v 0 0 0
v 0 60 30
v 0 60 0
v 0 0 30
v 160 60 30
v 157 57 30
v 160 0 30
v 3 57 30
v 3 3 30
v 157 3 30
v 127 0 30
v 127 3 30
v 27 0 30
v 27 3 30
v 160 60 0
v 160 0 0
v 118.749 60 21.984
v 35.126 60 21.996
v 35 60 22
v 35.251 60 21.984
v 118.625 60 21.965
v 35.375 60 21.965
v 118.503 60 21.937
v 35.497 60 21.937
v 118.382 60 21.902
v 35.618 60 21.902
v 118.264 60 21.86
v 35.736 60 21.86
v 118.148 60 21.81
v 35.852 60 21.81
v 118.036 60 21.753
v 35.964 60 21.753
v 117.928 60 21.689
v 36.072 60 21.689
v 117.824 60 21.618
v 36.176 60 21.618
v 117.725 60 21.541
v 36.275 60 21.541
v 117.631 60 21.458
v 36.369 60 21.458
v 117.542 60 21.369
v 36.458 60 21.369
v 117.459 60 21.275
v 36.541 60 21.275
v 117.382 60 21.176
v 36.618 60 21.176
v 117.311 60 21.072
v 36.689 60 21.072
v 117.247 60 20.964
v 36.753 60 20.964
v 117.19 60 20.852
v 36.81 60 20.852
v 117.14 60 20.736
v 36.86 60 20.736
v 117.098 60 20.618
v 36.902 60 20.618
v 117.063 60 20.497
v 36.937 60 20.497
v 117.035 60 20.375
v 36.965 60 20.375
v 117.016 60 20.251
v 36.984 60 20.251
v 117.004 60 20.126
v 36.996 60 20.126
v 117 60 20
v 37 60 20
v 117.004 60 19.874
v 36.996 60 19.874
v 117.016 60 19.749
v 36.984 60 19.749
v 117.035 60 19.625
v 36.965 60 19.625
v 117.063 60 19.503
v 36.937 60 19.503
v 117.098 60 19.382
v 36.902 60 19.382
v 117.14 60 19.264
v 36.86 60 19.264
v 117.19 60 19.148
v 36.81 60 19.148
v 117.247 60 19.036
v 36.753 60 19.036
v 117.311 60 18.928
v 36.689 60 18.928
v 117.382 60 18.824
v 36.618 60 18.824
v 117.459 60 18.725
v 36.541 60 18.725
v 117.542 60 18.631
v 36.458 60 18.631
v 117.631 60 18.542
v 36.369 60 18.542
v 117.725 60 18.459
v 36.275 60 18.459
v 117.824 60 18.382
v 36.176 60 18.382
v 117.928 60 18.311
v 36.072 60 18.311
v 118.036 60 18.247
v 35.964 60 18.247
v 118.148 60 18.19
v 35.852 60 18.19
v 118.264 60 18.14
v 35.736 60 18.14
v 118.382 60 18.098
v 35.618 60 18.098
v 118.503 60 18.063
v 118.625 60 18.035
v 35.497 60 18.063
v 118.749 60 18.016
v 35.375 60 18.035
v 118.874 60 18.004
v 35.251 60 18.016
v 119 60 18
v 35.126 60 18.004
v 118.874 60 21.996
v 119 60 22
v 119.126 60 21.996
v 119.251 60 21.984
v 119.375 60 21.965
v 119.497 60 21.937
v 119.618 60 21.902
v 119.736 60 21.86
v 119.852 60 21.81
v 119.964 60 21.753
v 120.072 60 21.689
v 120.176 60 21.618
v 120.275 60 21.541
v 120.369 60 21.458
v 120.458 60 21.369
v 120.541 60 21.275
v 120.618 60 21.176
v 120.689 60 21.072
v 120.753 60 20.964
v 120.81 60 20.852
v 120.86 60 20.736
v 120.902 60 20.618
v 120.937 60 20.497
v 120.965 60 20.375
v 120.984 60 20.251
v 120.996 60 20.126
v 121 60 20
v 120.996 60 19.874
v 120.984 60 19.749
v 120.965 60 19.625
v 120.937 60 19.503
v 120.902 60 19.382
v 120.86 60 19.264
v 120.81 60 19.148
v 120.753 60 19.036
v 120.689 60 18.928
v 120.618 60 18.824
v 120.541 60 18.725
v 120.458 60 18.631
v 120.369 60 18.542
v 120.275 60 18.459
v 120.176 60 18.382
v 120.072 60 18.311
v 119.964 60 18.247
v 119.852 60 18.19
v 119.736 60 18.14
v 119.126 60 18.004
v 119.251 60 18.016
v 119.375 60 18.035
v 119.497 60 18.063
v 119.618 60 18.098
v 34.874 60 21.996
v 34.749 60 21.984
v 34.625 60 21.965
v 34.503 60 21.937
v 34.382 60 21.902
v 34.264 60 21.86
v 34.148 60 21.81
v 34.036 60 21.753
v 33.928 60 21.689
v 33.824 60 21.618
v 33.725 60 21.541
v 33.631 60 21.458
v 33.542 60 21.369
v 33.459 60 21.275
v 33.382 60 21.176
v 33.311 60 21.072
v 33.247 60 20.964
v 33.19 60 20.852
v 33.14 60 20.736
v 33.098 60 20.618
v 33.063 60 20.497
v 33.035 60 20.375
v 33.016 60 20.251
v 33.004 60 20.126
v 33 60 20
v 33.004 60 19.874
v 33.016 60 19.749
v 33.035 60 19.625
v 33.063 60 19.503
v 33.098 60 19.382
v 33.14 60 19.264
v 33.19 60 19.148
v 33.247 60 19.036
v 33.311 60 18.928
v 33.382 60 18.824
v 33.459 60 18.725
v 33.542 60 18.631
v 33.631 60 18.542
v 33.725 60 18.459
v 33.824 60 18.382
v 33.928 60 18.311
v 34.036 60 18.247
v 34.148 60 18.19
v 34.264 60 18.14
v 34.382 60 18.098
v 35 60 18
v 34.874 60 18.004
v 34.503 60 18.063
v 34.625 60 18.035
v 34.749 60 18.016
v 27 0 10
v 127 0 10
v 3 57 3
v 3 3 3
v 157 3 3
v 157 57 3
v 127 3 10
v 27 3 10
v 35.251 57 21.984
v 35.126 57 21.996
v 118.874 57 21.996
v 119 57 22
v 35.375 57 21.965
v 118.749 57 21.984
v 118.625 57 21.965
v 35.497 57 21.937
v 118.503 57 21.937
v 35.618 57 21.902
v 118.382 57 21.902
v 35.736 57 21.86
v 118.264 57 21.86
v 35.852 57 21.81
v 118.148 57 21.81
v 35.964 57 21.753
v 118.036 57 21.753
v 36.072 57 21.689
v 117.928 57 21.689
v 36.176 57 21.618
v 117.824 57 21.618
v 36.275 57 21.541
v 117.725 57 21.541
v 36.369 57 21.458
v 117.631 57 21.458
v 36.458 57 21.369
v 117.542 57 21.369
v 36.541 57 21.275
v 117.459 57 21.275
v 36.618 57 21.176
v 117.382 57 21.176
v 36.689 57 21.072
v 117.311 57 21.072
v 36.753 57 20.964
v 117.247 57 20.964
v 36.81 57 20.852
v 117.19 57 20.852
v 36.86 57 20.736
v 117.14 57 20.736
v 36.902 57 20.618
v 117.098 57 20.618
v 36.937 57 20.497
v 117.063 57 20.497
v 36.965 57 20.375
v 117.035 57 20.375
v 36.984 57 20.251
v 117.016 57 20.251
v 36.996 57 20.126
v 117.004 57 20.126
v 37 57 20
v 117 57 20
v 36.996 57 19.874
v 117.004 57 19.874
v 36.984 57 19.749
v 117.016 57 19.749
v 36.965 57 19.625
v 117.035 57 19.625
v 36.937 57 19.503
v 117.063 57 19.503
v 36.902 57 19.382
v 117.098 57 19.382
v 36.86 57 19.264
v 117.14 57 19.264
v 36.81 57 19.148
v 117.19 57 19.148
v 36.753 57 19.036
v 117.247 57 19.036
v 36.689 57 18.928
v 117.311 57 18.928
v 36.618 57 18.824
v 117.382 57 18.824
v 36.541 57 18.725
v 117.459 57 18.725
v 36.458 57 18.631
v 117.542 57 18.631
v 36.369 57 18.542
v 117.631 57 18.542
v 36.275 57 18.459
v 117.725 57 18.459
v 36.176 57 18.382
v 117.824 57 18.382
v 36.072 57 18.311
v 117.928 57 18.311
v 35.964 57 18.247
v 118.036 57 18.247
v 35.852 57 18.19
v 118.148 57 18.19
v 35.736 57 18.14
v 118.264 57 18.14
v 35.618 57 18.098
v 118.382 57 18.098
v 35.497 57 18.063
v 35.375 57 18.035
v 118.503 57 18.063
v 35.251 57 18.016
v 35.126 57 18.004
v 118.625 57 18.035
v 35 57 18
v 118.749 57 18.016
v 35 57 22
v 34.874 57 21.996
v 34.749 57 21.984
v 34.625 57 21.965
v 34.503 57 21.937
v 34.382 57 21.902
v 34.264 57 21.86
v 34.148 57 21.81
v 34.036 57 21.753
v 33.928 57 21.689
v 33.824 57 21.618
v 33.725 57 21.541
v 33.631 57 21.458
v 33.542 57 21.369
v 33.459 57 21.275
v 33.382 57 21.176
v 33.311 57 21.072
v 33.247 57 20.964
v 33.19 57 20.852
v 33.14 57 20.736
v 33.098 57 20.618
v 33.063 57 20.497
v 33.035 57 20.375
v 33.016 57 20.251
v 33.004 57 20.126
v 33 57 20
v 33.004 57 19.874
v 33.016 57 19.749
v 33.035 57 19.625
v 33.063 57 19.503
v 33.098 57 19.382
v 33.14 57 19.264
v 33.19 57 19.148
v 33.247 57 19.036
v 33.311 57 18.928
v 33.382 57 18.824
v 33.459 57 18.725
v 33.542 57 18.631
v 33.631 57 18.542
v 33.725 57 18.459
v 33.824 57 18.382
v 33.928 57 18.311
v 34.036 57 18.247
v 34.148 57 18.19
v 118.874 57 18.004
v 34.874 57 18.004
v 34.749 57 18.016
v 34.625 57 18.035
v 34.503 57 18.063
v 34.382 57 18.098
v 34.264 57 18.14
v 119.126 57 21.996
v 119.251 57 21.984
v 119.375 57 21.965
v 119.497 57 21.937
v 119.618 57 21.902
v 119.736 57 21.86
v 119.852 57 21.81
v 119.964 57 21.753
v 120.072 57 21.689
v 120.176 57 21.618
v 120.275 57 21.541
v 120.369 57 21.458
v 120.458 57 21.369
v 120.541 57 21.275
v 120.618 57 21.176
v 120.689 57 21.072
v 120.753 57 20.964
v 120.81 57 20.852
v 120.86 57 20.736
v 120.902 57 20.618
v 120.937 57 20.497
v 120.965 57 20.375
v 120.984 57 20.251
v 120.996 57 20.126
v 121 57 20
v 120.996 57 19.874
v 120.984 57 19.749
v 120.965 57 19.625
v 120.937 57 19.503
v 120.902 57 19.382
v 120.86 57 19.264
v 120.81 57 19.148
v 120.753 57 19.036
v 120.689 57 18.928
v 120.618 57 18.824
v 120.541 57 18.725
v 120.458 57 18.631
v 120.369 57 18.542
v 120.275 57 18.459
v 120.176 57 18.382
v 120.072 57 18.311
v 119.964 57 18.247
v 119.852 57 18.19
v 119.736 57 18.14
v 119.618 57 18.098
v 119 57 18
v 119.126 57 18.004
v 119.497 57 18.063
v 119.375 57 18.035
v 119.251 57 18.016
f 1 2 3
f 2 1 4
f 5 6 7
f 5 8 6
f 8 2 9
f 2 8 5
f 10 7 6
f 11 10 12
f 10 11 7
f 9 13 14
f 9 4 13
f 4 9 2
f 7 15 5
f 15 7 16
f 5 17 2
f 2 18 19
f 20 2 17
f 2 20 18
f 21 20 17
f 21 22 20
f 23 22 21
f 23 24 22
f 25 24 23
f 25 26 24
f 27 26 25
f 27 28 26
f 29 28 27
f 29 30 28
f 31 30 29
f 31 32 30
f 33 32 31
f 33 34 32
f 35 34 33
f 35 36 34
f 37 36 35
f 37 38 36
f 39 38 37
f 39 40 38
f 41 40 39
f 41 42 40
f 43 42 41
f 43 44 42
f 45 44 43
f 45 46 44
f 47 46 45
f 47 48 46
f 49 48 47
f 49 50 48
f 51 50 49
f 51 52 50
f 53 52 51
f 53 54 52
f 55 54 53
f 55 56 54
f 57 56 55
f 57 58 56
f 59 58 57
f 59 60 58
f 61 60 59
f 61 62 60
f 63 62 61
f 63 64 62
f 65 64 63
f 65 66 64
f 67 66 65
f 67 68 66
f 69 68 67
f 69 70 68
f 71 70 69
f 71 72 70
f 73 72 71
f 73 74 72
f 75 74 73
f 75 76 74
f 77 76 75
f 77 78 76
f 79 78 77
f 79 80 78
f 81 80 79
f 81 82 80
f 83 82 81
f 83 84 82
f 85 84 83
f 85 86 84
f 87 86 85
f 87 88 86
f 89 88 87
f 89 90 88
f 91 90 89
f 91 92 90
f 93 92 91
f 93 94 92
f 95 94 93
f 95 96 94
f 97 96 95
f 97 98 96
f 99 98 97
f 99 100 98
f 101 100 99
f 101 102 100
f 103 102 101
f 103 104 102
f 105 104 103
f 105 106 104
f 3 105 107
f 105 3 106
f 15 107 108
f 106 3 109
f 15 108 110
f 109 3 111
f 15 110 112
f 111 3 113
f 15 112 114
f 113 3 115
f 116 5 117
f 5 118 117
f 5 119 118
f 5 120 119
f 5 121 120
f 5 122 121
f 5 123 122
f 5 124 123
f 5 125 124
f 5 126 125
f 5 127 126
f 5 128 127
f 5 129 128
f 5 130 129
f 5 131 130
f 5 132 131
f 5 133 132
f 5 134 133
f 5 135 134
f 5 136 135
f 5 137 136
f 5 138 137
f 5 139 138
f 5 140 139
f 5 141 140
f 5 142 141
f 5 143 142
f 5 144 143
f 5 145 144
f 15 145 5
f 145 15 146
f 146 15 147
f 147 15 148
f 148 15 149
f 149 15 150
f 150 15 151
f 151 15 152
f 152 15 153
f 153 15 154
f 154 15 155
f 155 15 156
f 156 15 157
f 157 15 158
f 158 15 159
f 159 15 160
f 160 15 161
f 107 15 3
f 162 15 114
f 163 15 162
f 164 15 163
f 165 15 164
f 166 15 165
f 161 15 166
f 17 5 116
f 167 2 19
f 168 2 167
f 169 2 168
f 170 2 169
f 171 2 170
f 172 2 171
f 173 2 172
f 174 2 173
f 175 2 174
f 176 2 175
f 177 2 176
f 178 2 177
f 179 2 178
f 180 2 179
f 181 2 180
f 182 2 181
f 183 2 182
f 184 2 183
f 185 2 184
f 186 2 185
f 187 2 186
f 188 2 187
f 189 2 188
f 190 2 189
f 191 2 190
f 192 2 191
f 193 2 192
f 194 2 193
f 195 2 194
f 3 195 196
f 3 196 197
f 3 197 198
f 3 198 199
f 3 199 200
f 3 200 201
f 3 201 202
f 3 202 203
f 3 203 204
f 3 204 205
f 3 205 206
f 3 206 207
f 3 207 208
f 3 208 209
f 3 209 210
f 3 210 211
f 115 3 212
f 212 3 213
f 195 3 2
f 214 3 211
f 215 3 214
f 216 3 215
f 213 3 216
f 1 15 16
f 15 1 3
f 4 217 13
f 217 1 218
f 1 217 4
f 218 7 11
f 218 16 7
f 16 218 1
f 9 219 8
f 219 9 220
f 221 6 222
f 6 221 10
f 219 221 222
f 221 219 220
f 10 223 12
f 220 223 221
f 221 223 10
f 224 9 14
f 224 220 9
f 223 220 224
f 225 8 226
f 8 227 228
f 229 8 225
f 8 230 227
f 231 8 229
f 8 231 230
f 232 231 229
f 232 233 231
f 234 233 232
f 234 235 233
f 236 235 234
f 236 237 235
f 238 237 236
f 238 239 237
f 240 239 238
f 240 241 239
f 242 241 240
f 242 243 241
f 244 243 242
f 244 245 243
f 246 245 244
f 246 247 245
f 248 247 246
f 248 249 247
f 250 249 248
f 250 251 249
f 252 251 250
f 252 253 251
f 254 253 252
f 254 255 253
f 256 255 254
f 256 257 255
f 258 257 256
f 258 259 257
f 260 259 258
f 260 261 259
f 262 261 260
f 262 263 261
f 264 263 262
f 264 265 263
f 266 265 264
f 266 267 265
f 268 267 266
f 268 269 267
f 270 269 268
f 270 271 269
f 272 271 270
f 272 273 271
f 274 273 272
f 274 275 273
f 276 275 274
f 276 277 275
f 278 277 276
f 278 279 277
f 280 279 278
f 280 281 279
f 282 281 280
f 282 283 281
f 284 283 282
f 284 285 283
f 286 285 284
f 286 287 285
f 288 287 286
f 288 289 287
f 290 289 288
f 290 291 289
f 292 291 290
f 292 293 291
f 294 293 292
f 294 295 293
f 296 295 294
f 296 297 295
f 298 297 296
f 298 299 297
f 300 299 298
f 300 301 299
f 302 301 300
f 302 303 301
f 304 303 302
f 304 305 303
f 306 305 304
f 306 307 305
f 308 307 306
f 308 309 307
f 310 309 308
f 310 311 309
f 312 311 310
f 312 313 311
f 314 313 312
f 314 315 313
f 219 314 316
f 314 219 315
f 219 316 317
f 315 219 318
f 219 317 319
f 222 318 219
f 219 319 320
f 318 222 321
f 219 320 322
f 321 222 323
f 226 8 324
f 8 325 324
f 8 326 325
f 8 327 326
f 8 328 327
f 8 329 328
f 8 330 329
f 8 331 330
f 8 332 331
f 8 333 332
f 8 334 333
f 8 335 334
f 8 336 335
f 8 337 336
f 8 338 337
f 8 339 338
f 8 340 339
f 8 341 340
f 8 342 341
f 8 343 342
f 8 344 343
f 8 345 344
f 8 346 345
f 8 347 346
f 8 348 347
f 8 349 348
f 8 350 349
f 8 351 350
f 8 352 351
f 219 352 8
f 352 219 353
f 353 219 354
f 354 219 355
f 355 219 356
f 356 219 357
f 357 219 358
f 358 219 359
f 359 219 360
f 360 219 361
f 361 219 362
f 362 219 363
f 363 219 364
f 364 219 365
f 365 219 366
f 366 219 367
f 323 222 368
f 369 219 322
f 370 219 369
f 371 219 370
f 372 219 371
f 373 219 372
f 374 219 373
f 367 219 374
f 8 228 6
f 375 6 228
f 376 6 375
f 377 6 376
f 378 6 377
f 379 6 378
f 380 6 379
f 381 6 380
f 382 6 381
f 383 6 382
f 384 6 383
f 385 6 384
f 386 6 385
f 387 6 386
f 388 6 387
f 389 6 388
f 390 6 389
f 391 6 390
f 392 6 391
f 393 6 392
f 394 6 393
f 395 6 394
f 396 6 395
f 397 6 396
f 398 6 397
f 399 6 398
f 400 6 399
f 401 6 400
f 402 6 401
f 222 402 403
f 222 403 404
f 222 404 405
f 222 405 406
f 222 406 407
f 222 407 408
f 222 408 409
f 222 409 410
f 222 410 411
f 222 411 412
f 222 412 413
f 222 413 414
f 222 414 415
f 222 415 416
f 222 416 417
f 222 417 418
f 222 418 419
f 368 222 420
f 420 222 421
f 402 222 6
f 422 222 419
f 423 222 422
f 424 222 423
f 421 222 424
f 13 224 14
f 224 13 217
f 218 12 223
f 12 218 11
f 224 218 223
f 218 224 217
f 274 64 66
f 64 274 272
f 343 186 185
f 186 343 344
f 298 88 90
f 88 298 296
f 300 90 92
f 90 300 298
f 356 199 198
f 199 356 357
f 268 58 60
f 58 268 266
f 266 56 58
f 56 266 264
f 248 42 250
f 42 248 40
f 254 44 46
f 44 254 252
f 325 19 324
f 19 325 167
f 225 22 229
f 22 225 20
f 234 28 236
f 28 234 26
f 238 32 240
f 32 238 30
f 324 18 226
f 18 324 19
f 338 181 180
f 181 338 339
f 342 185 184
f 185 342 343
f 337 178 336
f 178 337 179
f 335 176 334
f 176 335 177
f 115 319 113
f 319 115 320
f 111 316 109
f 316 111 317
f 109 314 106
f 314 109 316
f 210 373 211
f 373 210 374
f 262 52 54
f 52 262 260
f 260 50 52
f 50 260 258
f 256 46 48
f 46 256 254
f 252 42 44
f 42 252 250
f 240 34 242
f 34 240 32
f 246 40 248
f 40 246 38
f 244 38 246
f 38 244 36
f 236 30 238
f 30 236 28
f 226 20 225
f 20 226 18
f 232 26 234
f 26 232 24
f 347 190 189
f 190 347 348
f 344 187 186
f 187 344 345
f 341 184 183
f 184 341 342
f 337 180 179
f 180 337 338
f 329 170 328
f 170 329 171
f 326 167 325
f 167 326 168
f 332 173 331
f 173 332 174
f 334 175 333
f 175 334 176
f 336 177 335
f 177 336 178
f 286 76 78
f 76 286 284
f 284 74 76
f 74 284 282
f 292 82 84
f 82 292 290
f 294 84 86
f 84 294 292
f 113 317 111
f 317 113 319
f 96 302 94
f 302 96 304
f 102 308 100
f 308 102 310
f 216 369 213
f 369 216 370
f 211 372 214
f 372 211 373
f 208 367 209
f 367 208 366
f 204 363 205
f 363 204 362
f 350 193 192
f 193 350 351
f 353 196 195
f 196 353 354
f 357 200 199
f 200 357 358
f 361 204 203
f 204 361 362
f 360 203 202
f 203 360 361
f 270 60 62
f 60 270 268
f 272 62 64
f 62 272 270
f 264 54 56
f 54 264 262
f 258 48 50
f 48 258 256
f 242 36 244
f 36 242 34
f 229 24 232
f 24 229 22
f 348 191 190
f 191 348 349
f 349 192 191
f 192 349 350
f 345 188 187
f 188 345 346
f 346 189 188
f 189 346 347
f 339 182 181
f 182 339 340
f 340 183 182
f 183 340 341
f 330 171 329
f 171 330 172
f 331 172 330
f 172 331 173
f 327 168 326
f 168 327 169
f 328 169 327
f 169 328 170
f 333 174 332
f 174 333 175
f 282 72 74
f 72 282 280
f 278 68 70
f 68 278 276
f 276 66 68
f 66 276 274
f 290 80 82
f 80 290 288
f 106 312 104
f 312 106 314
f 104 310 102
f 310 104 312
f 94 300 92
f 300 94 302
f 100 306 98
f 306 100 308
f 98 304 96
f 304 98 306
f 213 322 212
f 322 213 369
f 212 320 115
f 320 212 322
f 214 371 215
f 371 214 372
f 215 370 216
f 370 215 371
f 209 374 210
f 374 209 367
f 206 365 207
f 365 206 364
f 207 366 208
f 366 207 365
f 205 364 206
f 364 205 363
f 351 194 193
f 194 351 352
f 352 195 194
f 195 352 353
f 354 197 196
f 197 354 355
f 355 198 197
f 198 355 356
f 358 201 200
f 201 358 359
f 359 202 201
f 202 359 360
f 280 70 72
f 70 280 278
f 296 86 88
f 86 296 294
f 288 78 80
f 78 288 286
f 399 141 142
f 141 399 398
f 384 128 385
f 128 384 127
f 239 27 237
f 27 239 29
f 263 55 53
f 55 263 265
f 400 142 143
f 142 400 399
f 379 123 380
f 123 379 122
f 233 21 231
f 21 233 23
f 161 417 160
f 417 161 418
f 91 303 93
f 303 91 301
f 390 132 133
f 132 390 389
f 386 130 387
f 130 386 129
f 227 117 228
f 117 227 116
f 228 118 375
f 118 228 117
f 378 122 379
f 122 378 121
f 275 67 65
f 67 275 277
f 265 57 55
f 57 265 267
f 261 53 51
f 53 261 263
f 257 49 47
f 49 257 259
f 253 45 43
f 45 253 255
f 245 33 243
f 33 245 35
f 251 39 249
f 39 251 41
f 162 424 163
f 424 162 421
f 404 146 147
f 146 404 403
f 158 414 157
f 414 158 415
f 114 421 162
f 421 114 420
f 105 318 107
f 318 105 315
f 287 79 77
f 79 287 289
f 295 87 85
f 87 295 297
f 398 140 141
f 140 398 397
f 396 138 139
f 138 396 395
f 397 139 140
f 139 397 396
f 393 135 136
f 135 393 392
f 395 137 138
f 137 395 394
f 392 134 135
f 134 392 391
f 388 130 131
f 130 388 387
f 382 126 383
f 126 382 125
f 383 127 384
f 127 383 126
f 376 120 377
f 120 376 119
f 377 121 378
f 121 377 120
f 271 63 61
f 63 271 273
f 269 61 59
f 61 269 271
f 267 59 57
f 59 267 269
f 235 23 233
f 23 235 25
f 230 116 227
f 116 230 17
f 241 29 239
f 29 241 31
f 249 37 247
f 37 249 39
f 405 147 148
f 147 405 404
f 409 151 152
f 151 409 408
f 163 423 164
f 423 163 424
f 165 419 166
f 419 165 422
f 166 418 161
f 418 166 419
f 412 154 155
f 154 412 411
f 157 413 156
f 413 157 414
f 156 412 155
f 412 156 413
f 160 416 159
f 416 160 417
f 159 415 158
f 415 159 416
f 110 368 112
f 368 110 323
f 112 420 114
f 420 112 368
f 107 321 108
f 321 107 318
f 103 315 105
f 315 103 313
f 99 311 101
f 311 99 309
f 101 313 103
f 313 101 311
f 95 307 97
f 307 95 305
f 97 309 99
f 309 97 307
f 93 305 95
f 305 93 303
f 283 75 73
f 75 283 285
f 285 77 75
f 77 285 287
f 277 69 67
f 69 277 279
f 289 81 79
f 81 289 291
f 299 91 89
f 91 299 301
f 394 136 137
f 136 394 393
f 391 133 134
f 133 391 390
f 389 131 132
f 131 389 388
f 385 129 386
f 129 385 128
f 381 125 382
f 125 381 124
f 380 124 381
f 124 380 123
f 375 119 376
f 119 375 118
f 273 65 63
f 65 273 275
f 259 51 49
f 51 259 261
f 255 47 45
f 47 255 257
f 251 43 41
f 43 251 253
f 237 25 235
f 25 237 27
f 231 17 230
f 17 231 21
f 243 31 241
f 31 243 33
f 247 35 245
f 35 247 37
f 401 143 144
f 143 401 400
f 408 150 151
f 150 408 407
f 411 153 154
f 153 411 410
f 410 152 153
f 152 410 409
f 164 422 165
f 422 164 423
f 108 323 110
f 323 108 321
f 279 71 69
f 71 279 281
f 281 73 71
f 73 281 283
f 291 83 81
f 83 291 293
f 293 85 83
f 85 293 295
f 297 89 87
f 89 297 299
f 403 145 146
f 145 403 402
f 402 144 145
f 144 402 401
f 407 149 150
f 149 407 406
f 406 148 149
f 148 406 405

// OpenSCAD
$fn = 100;

difference() {
    
    cube([160, 60, 30]);
    translate([3, 3, 3])
    cube([154, 54, 30]);

    color("red")
    translate([27, -1, 10])
    cube([100, 10, 30]);

    color("red")
    translate([35, 62 - 1, 20])
    rotate([90, 0, 0])
    cylinder(h = 5, r = 2);

    color("red")
    translate([154-35, 62 - 1, 20])
    rotate([90, 0, 0])
    cylinder(h = 5, r = 2);


}
